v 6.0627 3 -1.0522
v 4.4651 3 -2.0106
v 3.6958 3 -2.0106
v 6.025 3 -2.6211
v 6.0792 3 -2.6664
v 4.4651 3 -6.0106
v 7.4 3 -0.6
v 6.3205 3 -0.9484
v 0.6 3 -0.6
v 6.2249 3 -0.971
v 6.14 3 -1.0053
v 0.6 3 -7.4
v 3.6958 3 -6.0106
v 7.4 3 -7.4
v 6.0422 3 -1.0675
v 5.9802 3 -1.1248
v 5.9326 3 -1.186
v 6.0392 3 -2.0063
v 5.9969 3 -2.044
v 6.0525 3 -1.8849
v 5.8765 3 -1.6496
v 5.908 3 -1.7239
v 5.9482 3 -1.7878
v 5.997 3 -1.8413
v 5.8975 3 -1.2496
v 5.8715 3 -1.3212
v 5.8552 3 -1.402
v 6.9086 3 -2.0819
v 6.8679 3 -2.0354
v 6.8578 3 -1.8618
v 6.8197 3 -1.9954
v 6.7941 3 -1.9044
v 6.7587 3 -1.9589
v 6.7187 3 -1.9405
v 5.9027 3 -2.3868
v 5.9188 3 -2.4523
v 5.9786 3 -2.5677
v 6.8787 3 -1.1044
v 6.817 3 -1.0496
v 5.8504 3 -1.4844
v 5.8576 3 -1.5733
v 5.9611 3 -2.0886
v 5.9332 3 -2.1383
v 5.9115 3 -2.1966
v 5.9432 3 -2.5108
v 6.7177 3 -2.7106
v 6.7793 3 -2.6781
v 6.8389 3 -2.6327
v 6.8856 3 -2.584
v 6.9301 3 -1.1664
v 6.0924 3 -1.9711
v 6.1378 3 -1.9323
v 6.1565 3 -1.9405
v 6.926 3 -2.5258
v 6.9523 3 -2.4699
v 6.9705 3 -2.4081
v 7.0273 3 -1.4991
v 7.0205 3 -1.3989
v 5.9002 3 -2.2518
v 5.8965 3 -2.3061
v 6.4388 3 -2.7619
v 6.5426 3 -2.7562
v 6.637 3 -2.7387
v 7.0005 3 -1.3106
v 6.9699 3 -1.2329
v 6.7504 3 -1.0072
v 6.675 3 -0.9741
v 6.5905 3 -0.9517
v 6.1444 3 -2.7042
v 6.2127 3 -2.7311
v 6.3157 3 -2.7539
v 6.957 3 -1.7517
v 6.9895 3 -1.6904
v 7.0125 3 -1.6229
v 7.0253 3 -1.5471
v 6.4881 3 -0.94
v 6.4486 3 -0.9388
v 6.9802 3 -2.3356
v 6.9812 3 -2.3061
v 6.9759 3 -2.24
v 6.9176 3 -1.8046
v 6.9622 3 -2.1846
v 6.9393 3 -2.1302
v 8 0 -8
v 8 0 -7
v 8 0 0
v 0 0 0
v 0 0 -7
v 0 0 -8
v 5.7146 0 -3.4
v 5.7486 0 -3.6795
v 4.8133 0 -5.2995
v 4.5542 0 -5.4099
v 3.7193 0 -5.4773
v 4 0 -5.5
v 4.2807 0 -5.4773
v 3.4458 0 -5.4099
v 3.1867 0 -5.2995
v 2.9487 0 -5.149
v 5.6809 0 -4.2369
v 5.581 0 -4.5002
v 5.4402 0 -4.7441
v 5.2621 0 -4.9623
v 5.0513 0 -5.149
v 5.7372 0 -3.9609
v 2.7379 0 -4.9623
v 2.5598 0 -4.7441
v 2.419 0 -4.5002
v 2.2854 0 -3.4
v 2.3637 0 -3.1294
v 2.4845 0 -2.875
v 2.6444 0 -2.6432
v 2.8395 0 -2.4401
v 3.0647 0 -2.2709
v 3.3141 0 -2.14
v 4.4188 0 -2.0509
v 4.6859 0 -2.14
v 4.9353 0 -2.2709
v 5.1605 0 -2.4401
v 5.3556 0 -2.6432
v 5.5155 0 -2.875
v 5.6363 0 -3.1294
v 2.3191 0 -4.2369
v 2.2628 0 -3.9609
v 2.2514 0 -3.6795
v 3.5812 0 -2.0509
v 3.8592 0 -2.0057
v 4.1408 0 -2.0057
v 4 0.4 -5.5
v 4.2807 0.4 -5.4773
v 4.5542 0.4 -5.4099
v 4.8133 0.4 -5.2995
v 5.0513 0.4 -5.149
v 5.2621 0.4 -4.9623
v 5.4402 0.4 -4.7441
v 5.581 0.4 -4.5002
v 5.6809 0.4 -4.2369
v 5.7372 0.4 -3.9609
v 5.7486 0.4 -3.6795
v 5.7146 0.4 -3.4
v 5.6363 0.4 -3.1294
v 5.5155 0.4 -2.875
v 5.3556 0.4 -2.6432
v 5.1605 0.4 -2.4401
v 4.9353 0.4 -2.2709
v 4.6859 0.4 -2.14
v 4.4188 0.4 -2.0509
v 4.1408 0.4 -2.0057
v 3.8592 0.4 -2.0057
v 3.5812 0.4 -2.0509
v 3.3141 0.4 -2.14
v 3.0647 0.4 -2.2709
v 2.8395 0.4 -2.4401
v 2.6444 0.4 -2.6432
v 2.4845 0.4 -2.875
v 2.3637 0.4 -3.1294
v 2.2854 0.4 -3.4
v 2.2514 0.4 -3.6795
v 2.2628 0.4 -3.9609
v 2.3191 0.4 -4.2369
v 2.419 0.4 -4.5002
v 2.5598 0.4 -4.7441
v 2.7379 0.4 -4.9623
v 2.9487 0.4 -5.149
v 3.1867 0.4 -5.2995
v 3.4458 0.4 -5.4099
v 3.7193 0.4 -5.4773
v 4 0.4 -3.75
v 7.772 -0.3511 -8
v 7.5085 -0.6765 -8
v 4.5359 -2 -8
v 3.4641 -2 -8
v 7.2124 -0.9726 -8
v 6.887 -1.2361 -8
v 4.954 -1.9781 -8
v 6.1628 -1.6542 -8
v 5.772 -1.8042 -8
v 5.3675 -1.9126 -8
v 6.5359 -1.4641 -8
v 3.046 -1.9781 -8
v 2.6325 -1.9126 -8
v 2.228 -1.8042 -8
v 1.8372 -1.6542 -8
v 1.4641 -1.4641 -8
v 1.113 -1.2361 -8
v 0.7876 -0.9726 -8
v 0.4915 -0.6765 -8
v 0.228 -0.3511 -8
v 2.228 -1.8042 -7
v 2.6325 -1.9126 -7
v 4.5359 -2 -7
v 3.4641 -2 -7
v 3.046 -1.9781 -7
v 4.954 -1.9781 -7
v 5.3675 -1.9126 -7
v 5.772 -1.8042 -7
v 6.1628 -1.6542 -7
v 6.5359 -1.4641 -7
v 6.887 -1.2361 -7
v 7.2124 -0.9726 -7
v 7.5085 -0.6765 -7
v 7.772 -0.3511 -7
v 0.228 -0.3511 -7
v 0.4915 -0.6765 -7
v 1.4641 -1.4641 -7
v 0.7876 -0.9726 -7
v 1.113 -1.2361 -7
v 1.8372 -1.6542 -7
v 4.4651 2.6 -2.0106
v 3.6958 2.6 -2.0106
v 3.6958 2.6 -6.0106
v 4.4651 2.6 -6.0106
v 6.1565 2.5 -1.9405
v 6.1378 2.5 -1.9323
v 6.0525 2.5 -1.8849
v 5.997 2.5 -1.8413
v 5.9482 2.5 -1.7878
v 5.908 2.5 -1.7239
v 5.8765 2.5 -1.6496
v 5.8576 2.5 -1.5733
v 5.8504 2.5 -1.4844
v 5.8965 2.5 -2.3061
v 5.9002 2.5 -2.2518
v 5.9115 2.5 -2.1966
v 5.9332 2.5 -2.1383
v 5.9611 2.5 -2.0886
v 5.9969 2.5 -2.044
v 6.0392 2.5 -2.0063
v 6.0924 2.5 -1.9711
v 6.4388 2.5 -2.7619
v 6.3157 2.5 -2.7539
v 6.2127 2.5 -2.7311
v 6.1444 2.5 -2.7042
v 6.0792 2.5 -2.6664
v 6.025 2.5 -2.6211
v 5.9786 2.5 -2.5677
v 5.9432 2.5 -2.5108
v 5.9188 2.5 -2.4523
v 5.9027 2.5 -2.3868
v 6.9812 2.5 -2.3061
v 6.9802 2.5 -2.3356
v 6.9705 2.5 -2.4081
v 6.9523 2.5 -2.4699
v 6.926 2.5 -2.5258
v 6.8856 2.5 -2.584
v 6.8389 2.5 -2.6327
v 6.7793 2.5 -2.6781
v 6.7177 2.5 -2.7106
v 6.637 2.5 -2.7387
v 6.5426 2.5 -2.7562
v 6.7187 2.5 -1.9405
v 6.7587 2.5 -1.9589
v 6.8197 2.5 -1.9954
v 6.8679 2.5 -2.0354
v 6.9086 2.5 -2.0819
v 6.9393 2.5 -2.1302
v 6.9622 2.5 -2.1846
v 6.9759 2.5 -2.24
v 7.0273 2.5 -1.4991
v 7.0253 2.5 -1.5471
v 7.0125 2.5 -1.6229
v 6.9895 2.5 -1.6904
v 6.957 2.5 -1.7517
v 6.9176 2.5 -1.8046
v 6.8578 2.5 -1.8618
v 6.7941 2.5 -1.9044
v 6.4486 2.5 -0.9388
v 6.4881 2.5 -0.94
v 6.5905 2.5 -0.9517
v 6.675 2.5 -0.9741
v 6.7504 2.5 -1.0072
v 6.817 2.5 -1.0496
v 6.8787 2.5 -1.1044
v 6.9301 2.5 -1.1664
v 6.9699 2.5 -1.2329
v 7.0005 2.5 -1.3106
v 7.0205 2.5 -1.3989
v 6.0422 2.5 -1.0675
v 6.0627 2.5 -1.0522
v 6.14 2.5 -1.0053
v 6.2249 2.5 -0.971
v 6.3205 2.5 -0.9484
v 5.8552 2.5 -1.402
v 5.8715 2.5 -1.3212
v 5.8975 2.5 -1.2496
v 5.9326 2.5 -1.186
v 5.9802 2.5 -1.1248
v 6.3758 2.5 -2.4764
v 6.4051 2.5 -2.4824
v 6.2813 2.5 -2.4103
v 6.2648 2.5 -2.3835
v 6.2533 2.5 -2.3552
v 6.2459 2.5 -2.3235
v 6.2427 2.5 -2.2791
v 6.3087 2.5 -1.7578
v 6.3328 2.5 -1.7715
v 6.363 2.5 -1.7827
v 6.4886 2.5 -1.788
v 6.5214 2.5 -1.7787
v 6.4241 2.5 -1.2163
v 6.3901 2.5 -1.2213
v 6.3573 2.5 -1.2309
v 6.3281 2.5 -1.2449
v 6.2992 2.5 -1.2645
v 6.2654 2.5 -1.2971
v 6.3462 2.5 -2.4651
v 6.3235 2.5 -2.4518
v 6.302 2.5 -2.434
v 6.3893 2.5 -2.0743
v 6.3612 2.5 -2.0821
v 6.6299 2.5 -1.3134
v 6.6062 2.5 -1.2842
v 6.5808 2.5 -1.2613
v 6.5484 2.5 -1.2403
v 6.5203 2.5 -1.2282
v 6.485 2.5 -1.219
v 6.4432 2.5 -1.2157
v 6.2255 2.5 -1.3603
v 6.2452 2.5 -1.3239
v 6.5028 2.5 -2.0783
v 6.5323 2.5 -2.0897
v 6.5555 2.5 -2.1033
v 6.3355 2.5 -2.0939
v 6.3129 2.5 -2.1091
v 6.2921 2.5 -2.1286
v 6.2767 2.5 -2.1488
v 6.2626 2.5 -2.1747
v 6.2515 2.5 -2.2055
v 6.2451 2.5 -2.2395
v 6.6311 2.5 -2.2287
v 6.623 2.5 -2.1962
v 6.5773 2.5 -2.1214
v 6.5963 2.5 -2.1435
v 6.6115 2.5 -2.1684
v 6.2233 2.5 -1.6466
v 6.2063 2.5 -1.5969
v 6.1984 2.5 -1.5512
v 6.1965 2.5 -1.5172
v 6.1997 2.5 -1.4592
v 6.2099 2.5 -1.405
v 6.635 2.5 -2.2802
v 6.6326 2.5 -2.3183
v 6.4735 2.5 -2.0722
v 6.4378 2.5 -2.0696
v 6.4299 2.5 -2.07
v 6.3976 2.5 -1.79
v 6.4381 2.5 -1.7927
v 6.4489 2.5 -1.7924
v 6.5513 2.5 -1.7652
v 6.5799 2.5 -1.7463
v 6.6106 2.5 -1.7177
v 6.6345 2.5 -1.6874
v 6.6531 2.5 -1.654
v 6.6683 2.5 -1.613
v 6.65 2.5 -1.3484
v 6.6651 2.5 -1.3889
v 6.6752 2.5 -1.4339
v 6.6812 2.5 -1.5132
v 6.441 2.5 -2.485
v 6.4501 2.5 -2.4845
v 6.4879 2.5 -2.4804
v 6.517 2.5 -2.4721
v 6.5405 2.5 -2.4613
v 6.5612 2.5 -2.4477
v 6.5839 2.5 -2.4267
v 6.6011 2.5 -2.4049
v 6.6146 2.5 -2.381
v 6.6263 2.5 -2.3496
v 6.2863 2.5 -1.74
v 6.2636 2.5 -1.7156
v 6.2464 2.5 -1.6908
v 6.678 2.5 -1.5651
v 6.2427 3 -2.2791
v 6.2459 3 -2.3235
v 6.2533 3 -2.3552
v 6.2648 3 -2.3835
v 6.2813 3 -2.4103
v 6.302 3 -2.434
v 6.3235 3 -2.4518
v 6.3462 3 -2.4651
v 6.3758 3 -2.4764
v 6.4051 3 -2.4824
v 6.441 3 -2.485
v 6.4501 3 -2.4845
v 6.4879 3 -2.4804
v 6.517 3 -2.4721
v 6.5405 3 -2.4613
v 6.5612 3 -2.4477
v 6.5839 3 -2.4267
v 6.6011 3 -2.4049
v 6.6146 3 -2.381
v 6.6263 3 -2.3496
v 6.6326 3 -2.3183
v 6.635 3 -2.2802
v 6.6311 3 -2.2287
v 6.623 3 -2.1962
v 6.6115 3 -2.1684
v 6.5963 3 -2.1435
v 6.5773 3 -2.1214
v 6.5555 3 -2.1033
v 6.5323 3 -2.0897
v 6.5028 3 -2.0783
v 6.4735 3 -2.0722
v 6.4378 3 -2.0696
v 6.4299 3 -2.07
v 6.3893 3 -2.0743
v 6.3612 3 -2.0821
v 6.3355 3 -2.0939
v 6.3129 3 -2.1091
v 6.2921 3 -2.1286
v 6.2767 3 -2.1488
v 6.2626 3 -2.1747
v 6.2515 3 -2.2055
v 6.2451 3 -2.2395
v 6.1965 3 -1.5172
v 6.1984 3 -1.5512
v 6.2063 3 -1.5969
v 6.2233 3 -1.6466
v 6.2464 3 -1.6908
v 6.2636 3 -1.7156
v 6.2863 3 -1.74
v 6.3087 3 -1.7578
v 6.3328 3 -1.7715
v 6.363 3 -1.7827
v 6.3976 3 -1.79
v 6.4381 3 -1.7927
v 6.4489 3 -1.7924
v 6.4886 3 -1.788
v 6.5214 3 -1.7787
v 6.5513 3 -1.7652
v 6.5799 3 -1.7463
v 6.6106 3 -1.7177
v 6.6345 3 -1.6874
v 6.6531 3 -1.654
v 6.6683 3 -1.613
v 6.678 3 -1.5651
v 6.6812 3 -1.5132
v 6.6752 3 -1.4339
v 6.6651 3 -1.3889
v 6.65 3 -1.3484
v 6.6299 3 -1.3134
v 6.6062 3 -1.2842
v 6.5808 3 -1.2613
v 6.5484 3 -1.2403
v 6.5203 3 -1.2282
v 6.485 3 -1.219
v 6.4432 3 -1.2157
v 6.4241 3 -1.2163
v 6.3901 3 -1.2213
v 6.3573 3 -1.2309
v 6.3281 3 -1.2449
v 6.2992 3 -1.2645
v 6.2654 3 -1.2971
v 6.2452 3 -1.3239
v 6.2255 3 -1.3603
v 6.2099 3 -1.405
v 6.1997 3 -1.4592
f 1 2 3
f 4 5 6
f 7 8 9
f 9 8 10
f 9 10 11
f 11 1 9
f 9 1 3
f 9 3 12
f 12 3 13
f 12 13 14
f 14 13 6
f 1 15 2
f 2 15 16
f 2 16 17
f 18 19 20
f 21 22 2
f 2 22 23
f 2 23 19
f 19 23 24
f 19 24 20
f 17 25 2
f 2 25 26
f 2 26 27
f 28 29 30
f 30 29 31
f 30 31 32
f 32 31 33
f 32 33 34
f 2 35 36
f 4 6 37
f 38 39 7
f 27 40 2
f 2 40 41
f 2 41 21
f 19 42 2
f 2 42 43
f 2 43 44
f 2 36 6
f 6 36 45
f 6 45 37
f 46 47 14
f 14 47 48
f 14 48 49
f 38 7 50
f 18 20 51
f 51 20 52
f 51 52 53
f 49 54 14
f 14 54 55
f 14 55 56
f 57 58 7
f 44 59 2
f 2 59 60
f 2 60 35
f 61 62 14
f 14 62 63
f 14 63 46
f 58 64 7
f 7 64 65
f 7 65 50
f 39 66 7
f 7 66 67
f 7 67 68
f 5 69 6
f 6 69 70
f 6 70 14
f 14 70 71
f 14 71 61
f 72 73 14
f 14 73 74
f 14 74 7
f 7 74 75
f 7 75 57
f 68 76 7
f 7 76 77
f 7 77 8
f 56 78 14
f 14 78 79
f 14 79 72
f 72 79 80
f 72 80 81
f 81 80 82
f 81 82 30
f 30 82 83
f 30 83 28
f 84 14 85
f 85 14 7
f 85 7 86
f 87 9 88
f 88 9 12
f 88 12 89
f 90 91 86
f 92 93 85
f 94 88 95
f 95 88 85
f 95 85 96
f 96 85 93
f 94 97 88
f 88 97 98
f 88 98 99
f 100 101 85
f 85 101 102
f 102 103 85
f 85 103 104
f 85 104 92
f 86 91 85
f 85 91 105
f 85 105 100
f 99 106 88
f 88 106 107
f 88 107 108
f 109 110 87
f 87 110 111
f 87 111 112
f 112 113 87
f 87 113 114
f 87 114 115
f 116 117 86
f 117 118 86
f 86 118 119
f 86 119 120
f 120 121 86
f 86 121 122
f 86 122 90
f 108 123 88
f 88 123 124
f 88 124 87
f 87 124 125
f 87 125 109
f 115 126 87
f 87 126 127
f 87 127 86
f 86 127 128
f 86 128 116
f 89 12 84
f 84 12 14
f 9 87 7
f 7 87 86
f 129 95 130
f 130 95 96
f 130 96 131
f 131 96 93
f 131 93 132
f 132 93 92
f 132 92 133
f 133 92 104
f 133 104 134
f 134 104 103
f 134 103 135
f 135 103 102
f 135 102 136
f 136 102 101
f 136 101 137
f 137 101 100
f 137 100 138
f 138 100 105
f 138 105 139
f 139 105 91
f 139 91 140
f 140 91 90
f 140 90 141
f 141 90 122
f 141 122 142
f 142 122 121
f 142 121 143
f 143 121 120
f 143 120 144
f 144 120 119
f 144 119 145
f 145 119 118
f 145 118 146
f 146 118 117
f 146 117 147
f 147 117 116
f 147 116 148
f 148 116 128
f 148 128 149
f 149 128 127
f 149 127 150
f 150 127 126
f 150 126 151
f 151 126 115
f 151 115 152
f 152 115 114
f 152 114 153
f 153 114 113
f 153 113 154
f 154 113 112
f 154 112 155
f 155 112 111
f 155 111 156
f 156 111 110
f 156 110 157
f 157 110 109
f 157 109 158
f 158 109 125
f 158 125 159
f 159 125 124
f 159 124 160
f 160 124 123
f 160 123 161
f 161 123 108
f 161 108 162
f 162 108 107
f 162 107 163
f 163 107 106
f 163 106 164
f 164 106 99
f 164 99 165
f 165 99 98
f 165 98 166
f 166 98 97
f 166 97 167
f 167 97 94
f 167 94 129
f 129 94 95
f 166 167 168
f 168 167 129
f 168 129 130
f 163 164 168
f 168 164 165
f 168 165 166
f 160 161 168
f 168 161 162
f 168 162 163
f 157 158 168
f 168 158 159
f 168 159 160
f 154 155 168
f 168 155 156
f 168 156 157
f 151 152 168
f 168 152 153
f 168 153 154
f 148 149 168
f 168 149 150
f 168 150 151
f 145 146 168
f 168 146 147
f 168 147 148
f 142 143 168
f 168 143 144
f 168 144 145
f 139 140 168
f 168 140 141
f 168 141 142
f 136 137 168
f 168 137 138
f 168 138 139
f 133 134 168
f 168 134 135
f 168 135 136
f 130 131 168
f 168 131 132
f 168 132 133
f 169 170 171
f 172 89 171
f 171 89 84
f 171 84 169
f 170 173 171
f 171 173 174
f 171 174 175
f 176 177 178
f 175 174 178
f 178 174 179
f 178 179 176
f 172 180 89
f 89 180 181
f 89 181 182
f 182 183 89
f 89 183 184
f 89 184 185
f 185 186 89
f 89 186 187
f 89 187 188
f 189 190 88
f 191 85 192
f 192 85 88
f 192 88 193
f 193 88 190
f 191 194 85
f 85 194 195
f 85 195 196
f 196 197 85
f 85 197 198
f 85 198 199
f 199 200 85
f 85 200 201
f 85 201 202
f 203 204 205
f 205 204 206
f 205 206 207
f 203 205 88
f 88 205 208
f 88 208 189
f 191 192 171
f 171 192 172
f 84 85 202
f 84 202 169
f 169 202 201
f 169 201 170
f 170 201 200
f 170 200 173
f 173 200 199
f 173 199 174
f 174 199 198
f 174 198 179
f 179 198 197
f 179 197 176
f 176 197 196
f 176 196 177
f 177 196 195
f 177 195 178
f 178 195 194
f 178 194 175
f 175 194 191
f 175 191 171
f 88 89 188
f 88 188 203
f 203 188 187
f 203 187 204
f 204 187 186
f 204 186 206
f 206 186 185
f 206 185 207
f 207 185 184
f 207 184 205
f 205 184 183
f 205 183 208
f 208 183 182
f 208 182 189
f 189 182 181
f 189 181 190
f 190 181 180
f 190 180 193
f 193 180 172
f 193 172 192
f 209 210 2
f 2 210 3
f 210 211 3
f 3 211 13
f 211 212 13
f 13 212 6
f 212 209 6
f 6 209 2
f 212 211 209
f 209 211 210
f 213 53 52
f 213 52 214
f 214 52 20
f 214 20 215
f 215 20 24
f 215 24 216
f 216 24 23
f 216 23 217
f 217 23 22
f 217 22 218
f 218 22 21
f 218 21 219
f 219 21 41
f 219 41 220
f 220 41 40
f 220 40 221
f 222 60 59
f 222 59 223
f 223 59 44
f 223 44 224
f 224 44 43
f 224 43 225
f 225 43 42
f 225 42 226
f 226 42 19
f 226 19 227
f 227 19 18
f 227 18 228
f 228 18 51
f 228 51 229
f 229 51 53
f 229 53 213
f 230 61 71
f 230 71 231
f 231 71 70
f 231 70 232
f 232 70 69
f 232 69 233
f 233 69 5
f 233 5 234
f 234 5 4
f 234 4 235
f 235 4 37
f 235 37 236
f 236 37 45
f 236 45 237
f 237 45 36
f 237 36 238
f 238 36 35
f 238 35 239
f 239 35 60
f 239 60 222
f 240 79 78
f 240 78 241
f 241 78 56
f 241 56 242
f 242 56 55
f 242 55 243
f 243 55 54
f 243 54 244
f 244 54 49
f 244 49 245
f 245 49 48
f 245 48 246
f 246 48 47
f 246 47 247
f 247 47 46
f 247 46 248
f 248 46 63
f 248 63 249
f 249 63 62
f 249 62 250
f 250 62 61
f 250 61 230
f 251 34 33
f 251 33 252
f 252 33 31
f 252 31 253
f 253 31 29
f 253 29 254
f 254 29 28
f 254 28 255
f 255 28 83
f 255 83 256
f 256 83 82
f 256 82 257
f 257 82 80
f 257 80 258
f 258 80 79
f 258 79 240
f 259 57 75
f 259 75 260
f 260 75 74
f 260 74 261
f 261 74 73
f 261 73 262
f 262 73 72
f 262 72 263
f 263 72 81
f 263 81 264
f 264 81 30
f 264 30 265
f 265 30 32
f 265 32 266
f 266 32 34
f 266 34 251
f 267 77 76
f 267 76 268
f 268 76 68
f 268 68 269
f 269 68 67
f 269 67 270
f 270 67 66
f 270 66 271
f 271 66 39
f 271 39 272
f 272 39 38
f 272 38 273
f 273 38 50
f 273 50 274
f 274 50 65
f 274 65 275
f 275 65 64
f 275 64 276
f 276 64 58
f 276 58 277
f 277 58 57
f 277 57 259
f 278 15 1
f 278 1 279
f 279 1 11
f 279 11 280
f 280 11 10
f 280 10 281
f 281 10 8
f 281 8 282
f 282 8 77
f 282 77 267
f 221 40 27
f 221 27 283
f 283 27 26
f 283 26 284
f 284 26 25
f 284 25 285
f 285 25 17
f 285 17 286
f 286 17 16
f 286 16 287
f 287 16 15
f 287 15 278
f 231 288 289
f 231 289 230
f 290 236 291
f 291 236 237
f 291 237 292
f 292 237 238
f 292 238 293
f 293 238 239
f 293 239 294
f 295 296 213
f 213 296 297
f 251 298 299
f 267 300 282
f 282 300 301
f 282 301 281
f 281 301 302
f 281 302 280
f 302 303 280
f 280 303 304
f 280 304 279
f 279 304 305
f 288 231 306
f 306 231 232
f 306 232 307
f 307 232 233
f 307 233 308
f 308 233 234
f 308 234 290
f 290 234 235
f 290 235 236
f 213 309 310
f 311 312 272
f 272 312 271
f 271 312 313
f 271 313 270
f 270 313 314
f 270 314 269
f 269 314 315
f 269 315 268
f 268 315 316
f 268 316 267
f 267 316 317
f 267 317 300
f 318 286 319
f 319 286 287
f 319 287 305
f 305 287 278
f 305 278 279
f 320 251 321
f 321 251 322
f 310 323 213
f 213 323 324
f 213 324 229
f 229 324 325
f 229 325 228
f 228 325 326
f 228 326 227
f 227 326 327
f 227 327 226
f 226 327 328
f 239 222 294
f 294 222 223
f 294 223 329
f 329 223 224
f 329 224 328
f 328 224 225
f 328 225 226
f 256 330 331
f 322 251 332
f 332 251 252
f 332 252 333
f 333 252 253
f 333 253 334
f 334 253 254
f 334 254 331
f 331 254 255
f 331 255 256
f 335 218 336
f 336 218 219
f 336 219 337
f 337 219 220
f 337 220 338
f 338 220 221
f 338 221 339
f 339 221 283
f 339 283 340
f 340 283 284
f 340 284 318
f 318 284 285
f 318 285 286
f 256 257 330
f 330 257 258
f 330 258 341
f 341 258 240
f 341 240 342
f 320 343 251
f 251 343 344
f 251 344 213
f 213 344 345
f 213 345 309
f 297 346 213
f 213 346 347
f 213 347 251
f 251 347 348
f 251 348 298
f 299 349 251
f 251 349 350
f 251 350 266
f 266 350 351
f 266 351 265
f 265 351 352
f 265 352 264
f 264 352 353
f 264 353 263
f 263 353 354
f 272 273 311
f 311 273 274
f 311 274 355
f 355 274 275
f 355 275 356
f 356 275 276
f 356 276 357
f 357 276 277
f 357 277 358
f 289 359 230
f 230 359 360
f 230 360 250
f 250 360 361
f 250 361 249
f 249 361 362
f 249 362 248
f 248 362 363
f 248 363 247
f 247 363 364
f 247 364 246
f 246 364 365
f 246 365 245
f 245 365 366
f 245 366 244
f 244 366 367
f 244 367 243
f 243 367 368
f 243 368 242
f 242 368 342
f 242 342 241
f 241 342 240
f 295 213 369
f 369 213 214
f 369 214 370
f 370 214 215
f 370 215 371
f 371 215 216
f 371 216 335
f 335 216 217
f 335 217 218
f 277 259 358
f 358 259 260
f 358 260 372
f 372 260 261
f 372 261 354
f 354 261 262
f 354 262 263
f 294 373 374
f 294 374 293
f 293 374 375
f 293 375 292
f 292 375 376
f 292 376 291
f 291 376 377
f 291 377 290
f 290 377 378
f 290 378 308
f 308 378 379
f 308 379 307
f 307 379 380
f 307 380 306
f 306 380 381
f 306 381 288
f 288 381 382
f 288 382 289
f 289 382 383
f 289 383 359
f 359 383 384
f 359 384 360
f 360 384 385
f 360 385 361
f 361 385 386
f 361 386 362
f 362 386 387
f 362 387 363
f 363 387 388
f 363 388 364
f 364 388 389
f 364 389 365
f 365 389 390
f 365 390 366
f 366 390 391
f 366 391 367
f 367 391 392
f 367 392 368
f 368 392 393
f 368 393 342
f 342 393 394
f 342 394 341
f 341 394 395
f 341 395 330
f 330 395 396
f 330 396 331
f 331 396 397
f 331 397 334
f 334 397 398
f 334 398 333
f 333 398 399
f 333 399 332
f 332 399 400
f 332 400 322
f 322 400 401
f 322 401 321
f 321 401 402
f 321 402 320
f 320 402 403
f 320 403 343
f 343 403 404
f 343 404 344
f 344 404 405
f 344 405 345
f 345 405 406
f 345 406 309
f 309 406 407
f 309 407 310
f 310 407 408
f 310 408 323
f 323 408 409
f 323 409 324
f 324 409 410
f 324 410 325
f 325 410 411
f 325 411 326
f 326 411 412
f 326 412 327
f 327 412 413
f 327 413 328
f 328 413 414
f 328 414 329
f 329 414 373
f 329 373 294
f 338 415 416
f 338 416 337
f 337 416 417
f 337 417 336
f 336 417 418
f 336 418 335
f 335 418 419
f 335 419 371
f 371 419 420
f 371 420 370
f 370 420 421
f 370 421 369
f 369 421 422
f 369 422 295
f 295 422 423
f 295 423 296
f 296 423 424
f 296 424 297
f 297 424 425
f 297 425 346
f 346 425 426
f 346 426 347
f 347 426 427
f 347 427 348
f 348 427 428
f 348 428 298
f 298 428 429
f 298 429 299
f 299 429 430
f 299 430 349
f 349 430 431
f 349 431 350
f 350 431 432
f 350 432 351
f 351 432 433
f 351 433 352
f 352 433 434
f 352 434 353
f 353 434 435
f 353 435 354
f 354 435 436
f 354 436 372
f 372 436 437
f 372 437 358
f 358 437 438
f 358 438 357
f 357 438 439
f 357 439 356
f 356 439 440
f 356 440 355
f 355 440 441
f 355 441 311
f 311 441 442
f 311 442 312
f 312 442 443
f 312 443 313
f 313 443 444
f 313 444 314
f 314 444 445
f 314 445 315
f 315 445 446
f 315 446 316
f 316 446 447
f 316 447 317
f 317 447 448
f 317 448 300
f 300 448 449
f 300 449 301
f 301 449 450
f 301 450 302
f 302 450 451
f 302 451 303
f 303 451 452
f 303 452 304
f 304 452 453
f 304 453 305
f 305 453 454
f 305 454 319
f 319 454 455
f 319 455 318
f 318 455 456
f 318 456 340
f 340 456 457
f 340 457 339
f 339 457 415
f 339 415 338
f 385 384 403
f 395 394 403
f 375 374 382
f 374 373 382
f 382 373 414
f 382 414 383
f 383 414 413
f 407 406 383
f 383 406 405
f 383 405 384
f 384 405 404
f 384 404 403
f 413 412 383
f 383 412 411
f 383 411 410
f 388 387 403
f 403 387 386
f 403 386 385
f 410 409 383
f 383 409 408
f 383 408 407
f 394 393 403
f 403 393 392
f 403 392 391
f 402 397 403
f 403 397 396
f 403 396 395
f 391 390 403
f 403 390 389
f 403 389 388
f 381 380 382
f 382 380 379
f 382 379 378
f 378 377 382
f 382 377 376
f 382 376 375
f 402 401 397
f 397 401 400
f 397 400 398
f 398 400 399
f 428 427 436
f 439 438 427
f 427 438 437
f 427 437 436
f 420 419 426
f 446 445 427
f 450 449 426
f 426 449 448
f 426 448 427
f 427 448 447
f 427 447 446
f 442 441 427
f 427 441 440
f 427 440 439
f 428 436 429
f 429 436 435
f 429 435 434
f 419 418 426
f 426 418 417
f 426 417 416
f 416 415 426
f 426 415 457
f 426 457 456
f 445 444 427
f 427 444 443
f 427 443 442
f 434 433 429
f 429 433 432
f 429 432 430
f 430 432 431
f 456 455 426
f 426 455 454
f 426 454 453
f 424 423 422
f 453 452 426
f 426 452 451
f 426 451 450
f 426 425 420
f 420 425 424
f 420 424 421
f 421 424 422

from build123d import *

# Parameters (mm, degrees)
SKETCH1_W               = 8
SKETCH1_H               = 8
BOSS_EXTRUDE1_DEPTH     = 3
CUT_EXTRUDE1_DEPTH      = 12.704699911
CUT_EXTRUDE1_DEPTH_BACK = 12.704699911
CUT_EXTRUDE2_DEPTH      = 11
SKETCH4_R               = 1.75
CUT_EXTRUDE3_DEPTH      = 0.4
SKETCH5_W               = 8
SKETCH5_H               = 1
BOSS_EXTRUDE2_DEPTH     = 2
FILLET1_R               = 4
SKETCH6_W               = 0.769230769
SKETCH6_H               = 4
CUT_EXTRUDE4_DEPTH      = 0.4
CUT_EXTRUDE5_DEPTH      = 0.5


with BuildPart() as part:
    # Sketch1 → Boss-Extrude1 (new body)
    with BuildSketch(Plane(origin=(0, 0, 0), x_dir=(1, 0, 0), z_dir=(0, 1, 0))):
        with Locations((4, 4)):
            Rectangle(SKETCH1_W, SKETCH1_H)
    extrude(amount=BOSS_EXTRUDE1_DEPTH)

    # Sketch2 → Cut-Extrude1 (cut, two sides: drawn at the far end of the back side and taken through both)
    with BuildSketch(Plane.XY.offset(-CUT_EXTRUDE1_DEPTH_BACK)):
        Polygon((0, 0), (0.6, 3), (0, 3), align=None)
        Polygon((8, 0), (7.4, 3), (8, 3), align=None)
    extrude(amount=CUT_EXTRUDE1_DEPTH + CUT_EXTRUDE1_DEPTH_BACK, mode=Mode.SUBTRACT)

    # Sketch3 → Cut-Extrude2 (cut)
    with BuildSketch(Plane(origin=(0, 0, 0), x_dir=(0, 0, -1), z_dir=(1, 0, 0))):
        Polygon((0, 0), (0.6, 3), (0, 3), align=None)
        Polygon((8, 3), (7.4, 3), (8, 0), align=None)
    extrude(amount=CUT_EXTRUDE2_DEPTH, mode=Mode.SUBTRACT)

    # Sketch4 → Cut-Extrude3 (cut)
    with BuildSketch(Plane.XZ):
        with Locations(Location((4, -3.75, 0), (0, 0, 270))):
            Circle(SKETCH4_R)
    extrude(amount=-CUT_EXTRUDE3_DEPTH, mode=Mode.SUBTRACT)

    # Sketch5 → Boss-Extrude2 (add)
    with BuildSketch(Plane.XZ):
        with Locations((4, -7.5)):
            Rectangle(SKETCH5_W, SKETCH5_H)
    extrude(amount=BOSS_EXTRUDE2_DEPTH)

    # Fillet1
    # the kernel refuses this fillet: 4 mm, written as the material it takes off along each edge
    with BuildSketch(Plane(origin=(8, -2, -16.660254038), x_dir=(0, 1, 0), z_dir=(0, 0, 1)), Plane(origin=(0, -2, 1.660254038), x_dir=(0, 1, 0), z_dir=(0, 0, -1))) as fillet1_piece_1:
        with BuildLine():
            CenterArc((4, 3.464101615), FILLET1_R, 180, 60)
            Line((0, 3.464101615), (-0.08, 3.464101615))
            Line((-0.08, 3.464101615), (-0.08, 0))
            Line((-0.08, 0), (0, -0.08))
            ThreePointArc((0, -0.08), (1, -0.08), (1.96, -0.069282032))
            Line((1.96, -0.069282032), (2, 0))
        make_face()
    extrude(amount=18.320508076, mode=Mode.SUBTRACT)

    # Sketch6 → Cut-Extrude4 (cut)
    with BuildSketch(Plane(origin=(0, 3, 0), x_dir=(1, 0, 0), z_dir=(0, 1, 0))):
        with Locations((4.080454652, 4.010567225)):
            Rectangle(SKETCH6_W, SKETCH6_H)
    extrude(amount=-CUT_EXTRUDE4_DEPTH, mode=Mode.SUBTRACT)

    # Sketch7 → Cut-Extrude5 (cut)
    with BuildSketch(Plane(origin=(0, 3, 0), x_dir=(1, 0, 0), z_dir=(0, 1, 0))):
        with BuildLine():
            add(Edge.make_bspline(
                [(6.15651658, 1.940494244), (6.145510655, 1.945154492), (6.123907371, 1.954301988), (6.09323484, 1.970294914), (6.064799566, 1.987351514), (6.03904827, 2.006151328), (6.014913928, 2.025334971), (5.993825771, 2.046858093), (5.974537605, 2.069089397), (5.952535222, 2.100444232), (5.930090229, 2.141832976), (5.910800925, 2.194430822), (5.898811147, 2.249451533), (5.897303934, 2.287068468), (5.896540619, 2.306119244)],
                knots=[0, 0, 0, 0, 0.898135024, 1.762928937, 2.598141881, 3.387992021, 4.158483993, 4.912374357, 5.649344587, 6.368826796, 7.78793972, 9.174346042, 10.568971657, 12, 12, 12, 12], degree=3))
            add(Edge.make_bspline(
                [(5.896540619, 2.306119244), (5.896949128, 2.322245314), (5.897751301, 2.353911386), (5.904281857, 2.400363734), (5.915616882, 2.44465812), (5.931010165, 2.486919818), (5.951038649, 2.526923073), (5.975496438, 2.56462901), (6.003930921, 2.600564872), (6.037294343, 2.633564085), (6.074323927, 2.664052327), (6.115534703, 2.69032529), (6.160485402, 2.712397947), (6.20891965, 2.730972479), (6.261326587, 2.744700346), (6.31723261, 2.754957515), (6.376837021, 2.760515608), (6.417804161, 2.761422579), (6.438848311, 2.761888475)],
                knots=[0, 0, 0, 0, 0.969401132, 1.903571386, 2.813295953, 3.714164367, 4.602979607, 5.497068024, 6.412430398, 7.352730811, 8.313282239, 9.291613189, 10.283859467, 11.320059661, 12.405231593, 13.536450991, 14.734515125, 16, 16, 16, 16], degree=3))
            add(Edge.make_bspline(
                [(6.438848311, 2.761888475), (6.459773562, 2.761431674), (6.500383715, 2.760545149), (6.55961144, 2.754877249), (6.615077261, 2.744816374), (6.667188187, 2.730854406), (6.715469625, 2.712293645), (6.760612767, 2.690551265), (6.801644432, 2.66381705), (6.838966437, 2.633598573), (6.872672652, 2.600569648), (6.901445211, 2.564628122), (6.926343213, 2.527027151), (6.946297666, 2.486906382), (6.961756812, 2.444666111), (6.972933798, 2.400328314), (6.980070192, 2.353946909), (6.98078976, 2.322251495), (6.981156004, 2.306119244)],
                knots=[0, 0, 0, 0, 1.259437241, 2.444221022, 3.576496957, 4.648717845, 5.68588583, 6.685544666, 7.658705287, 8.625770615, 9.572078176, 10.492824823, 11.391686538, 12.281331915, 13.183041723, 14.093615956, 15.029693465, 16, 16, 16, 16], degree=3))
            add(Edge.make_bspline(
                [(6.981156004, 2.306119244), (6.980366305, 2.286090338), (6.978812332, 2.246677396), (6.965258975, 2.189529308), (6.943928318, 2.135551364), (6.913295241, 2.085904697), (6.875370779, 2.040437046), (6.829547075, 2.001047886), (6.777330344, 1.966558185), (6.738534469, 1.949324529), (6.718656004, 1.940494244)],
                knots=[0, 0, 0, 0, 1.001685467, 1.971119642, 2.924446479, 3.896772127, 4.879289176, 5.877460772, 6.912440485, 8, 8, 8, 8], degree=3))
            add(Edge.make_bspline(
                [(6.718656004, 1.940494244), (6.730995791, 1.935383384), (6.755209584, 1.92535458), (6.789618906, 1.907504981), (6.821666519, 1.887953149), (6.85191654, 1.867223707), (6.879208616, 1.843911559), (6.904542812, 1.819378981), (6.927921941, 1.793284607), (6.948603911, 1.76528217), (6.967111811, 1.735846397), (6.983352513, 1.705442361), (6.996740217, 1.673626651), (7.007885734, 1.640992504), (7.016699849, 1.607138887), (7.022574215, 1.572136793), (7.026912363, 1.536034577), (7.0271763, 1.511541428), (7.02730985, 1.49914809)],
                knots=[0, 0, 0, 0, 1.114643742, 2.187213659, 3.231772812, 4.247796845, 5.244764516, 6.224002375, 7.19061506, 8.165938012, 9.126385546, 10.091434554, 11.040068535, 12.004700134, 12.968444139, 13.956586669, 14.966049226, 16, 16, 16, 16], degree=3))
            add(Edge.make_bspline(
                [(7.02730985, 1.49914809), (7.026796446, 1.478937492), (7.025787679, 1.439226454), (7.018711219, 1.38107925), (7.005929874, 1.325952641), (6.988491467, 1.273708162), (6.966746481, 1.223971877), (6.938910841, 1.177706145), (6.906713253, 1.134080082), (6.869643217, 1.093910629), (6.828597293, 1.057517999), (6.784112626, 1.025535606), (6.736110057, 0.99883009), (6.684984255, 0.976556488), (6.630355755, 0.95988295), (6.572607046, 0.947459175), (6.511624372, 0.940305747), (6.469876213, 0.939316226), (6.448583888, 0.938811552)],
                knots=[0, 0, 0, 0, 1.069671731, 2.10175744, 3.09402022, 4.059639235, 5.013663234, 5.960662081, 6.911094837, 7.879078902, 8.847982309, 9.810095429, 10.772776236, 11.750101161, 12.756155452, 13.790512928, 14.873121219, 16, 16, 16, 16], degree=3))
            add(Edge.make_bspline(
                [(6.448583888, 0.938811552), (6.428619193, 0.939272791), (6.389567235, 0.940174998), (6.332155248, 0.945908933), (6.277405474, 0.955949195), (6.225107083, 0.970165993), (6.175193963, 0.987917291), (6.128286945, 1.010684294), (6.083352924, 1.036376334), (6.055949035, 1.05713359), (6.042213696, 1.067537513)],
                knots=[0, 0, 0, 0, 1.102600357, 2.156742264, 3.182669202, 4.172953404, 5.147246686, 6.10327948, 7.049328352, 8, 8, 8, 8], degree=3))
            add(Edge.make_bspline(
                [(6.042213696, 1.067537513), (6.026828749, 1.080378521), (5.996458022, 1.105727373), (5.957746472, 1.14982945), (5.924287717, 1.196787263), (5.897240595, 1.247466884), (5.876140917, 1.301840234), (5.861164702, 1.359548786), (5.851827258, 1.420839433), (5.850875415, 1.46281546), (5.850386773, 1.484364436)],
                knots=[0, 0, 0, 0, 1.009349607, 1.992511403, 2.949479119, 3.912246635, 4.881480856, 5.884237694, 6.913844069, 8, 8, 8, 8], degree=3))
            add(Edge.make_bspline(
                [(5.850386773, 1.484364436), (5.851295235, 1.508227217), (5.853090808, 1.555391937), (5.867205324, 1.624626505), (5.890509398, 1.690664462), (5.91713497, 1.74293756), (5.943357572, 1.782163786), (5.96591762, 1.810161528), (5.991173615, 1.836408274), (6.018927817, 1.861025046), (6.049598606, 1.883490474), (6.082833606, 1.904254883), (6.118388609, 1.923985052), (6.143675127, 1.934933969), (6.15651658, 1.940494244)],
                knots=[0, 0, 0, 0, 1.466730477, 2.898988729, 4.325053486, 5.763136659, 6.492982434, 7.22372602, 7.971323195, 8.73066801, 9.502396106, 10.306304791, 11.139877329, 12, 12, 12, 12], degree=3))
        make_face()
        with BuildLine():
            add(Edge.make_bspline(
                [(6.242694465, 2.279075975), (6.243227056, 2.263511707), (6.244247122, 2.233701597), (6.254423757, 2.191695088), (6.271267591, 2.155002663), (6.294437582, 2.123896005), (6.323817487, 2.099406734), (6.357917342, 2.081867293), (6.396556715, 2.071574989), (6.423640052, 2.070264386), (6.43776658, 2.069580783)],
                knots=[0, 0, 0, 0, 1.15281608, 2.207978909, 3.181172827, 4.129718639, 5.059990565, 5.992992319, 6.953155196, 8, 8, 8, 8], degree=3))
            add(Edge.make_bspline(
                [(6.43776658, 2.069580783), (6.452019198, 2.070240913), (6.479498112, 2.071513639), (6.518435607, 2.08218095), (6.552976359, 2.099808827), (6.582400264, 2.12461233), (6.606163254, 2.155745627), (6.623191809, 2.192513664), (6.633513276, 2.234649719), (6.634488897, 2.264469788), (6.635002157, 2.280157706)],
                knots=[0, 0, 0, 0, 1.048069097, 2.020667378, 2.946900928, 3.882892544, 4.829907216, 5.807806237, 6.846717784, 8, 8, 8, 8], degree=3))
            add(Edge.make_bspline(
                [(6.635002157, 2.280157706), (6.634491926, 2.295013238), (6.633516102, 2.323424602), (6.622970742, 2.363619613), (6.606436408, 2.39945922), (6.582642474, 2.429691049), (6.554089388, 2.454874147), (6.520061906, 2.472182505), (6.481941896, 2.483104081), (6.455033522, 2.484327752), (6.441011773, 2.484965398)],
                knots=[0, 0, 0, 0, 1.120059371, 2.14212559, 3.117108277, 4.081714894, 5.028368956, 5.970787798, 6.942592912, 8, 8, 8, 8], degree=3))
            add(Edge.make_bspline(
                [(6.441011773, 2.484965398), (6.426516896, 2.484322219), (6.398793536, 2.483092056), (6.359460666, 2.472341434), (6.324738063, 2.454466675), (6.295507469, 2.429242148), (6.271712994, 2.39862944), (6.254554233, 2.362905047), (6.244256622, 2.322433946), (6.243229383, 2.293922732), (6.242694465, 2.279075975)],
                knots=[0, 0, 0, 0, 1.078082589, 2.061974896, 3.011033917, 3.963675658, 4.914590949, 5.879605178, 6.895838403, 8, 8, 8, 8], degree=3))
        make_face(mode=Mode.SUBTRACT)
        with BuildLine():
            add(Edge.make_bspline(
                [(6.196540619, 1.517176936), (6.196730477, 1.505629296), (6.197099128, 1.483207057), (6.20046304, 1.450559294), (6.205649554, 1.419730372), (6.21375861, 1.391003719), (6.223316031, 1.363907928), (6.235714339, 1.339167945), (6.249793304, 1.316020987), (6.266412851, 1.295211256), (6.28472227, 1.276705394), (6.303924475, 1.260084604), (6.324524838, 1.246535242), (6.346046028, 1.235062063), (6.368845981, 1.226421032), (6.392712607, 1.220489591), (6.41753513, 1.216100982), (6.434500999, 1.215858569), (6.443175234, 1.215734629)],
                knots=[0, 0, 0, 0, 1.266244622, 2.458687606, 3.596609786, 4.690452447, 5.728949622, 6.743059962, 7.719893583, 8.695837149, 9.65607124, 10.572687906, 11.475837526, 12.354503287, 13.243297811, 14.141816854, 15.049956288, 16, 16, 16, 16], degree=3))
            add(Edge.make_bspline(
                [(6.443175234, 1.215734629), (6.451602181, 1.215902824), (6.468057847, 1.216231266), (6.492249091, 1.219984617), (6.515274313, 1.226176747), (6.537422773, 1.234309167), (6.558086812, 1.245374324), (6.577789165, 1.258506963), (6.596578489, 1.273920235), (6.613783635, 1.292116571), (6.62981085, 1.312188806), (6.643411897, 1.33485558), (6.65555564, 1.35931889), (6.66456557, 1.386236104), (6.67253431, 1.414913473), (6.677108469, 1.44591441), (6.680631417, 1.478875262), (6.68097771, 1.501540921), (6.681156004, 1.51321059)],
                knots=[0, 0, 0, 0, 0.942317584, 1.840104704, 2.730710625, 3.607499931, 4.473808274, 5.346669015, 6.254175223, 7.186360584, 8.144194921, 9.122212144, 10.13877185, 11.193666142, 12.293061794, 13.46493029, 14.694790812, 16, 16, 16, 16], degree=3))
            add(Edge.make_bspline(
                [(6.681156004, 1.51321059), (6.680957439, 1.523435783), (6.680568608, 1.543458845), (6.677255041, 1.572763282), (6.671879045, 1.600628764), (6.664397898, 1.626985973), (6.654573048, 1.6515499), (6.642928518, 1.674710577), (6.628949814, 1.696276432), (6.612613113, 1.715977787), (6.595156277, 1.734014144), (6.576153606, 1.749704056), (6.556004184, 1.763065709), (6.534599532, 1.773990125), (6.512031704, 1.782228962), (6.488523892, 1.78844843), (6.463726194, 1.792153595), (6.446793708, 1.792487039), (6.438127157, 1.792657706)],
                knots=[0, 0, 0, 0, 1.18097333, 2.312592441, 3.401847494, 4.45657129, 5.472467779, 6.453609222, 7.447247299, 8.433973197, 9.406033457, 10.342947316, 11.274909381, 12.193955836, 13.112162788, 14.045055317, 14.999401151, 16, 16, 16, 16], degree=3))
            add(Edge.make_bspline(
                [(6.438127157, 1.792657706), (6.428259379, 1.792365239), (6.40916153, 1.791799208), (6.381426866, 1.787876586), (6.355713318, 1.780917675), (6.331705458, 1.771700183), (6.309770612, 1.759227348), (6.289908926, 1.74391846), (6.271697391, 1.726251639), (6.250860821, 1.699090969), (6.229093216, 1.662568124), (6.210711059, 1.615600245), (6.198388998, 1.567087579), (6.197157628, 1.533837656), (6.196540619, 1.517176936)],
                knots=[0, 0, 0, 0, 0.864439711, 1.673014741, 2.446909759, 3.19383146, 3.919980361, 4.648644137, 5.385779273, 6.135663785, 7.641703236, 9.092511638, 10.543128981, 12, 12, 12, 12], degree=3))
        make_face(mode=Mode.SUBTRACT)
    extrude(amount=-CUT_EXTRUDE5_DEPTH, mode=Mode.SUBTRACT)


solid = part.part
